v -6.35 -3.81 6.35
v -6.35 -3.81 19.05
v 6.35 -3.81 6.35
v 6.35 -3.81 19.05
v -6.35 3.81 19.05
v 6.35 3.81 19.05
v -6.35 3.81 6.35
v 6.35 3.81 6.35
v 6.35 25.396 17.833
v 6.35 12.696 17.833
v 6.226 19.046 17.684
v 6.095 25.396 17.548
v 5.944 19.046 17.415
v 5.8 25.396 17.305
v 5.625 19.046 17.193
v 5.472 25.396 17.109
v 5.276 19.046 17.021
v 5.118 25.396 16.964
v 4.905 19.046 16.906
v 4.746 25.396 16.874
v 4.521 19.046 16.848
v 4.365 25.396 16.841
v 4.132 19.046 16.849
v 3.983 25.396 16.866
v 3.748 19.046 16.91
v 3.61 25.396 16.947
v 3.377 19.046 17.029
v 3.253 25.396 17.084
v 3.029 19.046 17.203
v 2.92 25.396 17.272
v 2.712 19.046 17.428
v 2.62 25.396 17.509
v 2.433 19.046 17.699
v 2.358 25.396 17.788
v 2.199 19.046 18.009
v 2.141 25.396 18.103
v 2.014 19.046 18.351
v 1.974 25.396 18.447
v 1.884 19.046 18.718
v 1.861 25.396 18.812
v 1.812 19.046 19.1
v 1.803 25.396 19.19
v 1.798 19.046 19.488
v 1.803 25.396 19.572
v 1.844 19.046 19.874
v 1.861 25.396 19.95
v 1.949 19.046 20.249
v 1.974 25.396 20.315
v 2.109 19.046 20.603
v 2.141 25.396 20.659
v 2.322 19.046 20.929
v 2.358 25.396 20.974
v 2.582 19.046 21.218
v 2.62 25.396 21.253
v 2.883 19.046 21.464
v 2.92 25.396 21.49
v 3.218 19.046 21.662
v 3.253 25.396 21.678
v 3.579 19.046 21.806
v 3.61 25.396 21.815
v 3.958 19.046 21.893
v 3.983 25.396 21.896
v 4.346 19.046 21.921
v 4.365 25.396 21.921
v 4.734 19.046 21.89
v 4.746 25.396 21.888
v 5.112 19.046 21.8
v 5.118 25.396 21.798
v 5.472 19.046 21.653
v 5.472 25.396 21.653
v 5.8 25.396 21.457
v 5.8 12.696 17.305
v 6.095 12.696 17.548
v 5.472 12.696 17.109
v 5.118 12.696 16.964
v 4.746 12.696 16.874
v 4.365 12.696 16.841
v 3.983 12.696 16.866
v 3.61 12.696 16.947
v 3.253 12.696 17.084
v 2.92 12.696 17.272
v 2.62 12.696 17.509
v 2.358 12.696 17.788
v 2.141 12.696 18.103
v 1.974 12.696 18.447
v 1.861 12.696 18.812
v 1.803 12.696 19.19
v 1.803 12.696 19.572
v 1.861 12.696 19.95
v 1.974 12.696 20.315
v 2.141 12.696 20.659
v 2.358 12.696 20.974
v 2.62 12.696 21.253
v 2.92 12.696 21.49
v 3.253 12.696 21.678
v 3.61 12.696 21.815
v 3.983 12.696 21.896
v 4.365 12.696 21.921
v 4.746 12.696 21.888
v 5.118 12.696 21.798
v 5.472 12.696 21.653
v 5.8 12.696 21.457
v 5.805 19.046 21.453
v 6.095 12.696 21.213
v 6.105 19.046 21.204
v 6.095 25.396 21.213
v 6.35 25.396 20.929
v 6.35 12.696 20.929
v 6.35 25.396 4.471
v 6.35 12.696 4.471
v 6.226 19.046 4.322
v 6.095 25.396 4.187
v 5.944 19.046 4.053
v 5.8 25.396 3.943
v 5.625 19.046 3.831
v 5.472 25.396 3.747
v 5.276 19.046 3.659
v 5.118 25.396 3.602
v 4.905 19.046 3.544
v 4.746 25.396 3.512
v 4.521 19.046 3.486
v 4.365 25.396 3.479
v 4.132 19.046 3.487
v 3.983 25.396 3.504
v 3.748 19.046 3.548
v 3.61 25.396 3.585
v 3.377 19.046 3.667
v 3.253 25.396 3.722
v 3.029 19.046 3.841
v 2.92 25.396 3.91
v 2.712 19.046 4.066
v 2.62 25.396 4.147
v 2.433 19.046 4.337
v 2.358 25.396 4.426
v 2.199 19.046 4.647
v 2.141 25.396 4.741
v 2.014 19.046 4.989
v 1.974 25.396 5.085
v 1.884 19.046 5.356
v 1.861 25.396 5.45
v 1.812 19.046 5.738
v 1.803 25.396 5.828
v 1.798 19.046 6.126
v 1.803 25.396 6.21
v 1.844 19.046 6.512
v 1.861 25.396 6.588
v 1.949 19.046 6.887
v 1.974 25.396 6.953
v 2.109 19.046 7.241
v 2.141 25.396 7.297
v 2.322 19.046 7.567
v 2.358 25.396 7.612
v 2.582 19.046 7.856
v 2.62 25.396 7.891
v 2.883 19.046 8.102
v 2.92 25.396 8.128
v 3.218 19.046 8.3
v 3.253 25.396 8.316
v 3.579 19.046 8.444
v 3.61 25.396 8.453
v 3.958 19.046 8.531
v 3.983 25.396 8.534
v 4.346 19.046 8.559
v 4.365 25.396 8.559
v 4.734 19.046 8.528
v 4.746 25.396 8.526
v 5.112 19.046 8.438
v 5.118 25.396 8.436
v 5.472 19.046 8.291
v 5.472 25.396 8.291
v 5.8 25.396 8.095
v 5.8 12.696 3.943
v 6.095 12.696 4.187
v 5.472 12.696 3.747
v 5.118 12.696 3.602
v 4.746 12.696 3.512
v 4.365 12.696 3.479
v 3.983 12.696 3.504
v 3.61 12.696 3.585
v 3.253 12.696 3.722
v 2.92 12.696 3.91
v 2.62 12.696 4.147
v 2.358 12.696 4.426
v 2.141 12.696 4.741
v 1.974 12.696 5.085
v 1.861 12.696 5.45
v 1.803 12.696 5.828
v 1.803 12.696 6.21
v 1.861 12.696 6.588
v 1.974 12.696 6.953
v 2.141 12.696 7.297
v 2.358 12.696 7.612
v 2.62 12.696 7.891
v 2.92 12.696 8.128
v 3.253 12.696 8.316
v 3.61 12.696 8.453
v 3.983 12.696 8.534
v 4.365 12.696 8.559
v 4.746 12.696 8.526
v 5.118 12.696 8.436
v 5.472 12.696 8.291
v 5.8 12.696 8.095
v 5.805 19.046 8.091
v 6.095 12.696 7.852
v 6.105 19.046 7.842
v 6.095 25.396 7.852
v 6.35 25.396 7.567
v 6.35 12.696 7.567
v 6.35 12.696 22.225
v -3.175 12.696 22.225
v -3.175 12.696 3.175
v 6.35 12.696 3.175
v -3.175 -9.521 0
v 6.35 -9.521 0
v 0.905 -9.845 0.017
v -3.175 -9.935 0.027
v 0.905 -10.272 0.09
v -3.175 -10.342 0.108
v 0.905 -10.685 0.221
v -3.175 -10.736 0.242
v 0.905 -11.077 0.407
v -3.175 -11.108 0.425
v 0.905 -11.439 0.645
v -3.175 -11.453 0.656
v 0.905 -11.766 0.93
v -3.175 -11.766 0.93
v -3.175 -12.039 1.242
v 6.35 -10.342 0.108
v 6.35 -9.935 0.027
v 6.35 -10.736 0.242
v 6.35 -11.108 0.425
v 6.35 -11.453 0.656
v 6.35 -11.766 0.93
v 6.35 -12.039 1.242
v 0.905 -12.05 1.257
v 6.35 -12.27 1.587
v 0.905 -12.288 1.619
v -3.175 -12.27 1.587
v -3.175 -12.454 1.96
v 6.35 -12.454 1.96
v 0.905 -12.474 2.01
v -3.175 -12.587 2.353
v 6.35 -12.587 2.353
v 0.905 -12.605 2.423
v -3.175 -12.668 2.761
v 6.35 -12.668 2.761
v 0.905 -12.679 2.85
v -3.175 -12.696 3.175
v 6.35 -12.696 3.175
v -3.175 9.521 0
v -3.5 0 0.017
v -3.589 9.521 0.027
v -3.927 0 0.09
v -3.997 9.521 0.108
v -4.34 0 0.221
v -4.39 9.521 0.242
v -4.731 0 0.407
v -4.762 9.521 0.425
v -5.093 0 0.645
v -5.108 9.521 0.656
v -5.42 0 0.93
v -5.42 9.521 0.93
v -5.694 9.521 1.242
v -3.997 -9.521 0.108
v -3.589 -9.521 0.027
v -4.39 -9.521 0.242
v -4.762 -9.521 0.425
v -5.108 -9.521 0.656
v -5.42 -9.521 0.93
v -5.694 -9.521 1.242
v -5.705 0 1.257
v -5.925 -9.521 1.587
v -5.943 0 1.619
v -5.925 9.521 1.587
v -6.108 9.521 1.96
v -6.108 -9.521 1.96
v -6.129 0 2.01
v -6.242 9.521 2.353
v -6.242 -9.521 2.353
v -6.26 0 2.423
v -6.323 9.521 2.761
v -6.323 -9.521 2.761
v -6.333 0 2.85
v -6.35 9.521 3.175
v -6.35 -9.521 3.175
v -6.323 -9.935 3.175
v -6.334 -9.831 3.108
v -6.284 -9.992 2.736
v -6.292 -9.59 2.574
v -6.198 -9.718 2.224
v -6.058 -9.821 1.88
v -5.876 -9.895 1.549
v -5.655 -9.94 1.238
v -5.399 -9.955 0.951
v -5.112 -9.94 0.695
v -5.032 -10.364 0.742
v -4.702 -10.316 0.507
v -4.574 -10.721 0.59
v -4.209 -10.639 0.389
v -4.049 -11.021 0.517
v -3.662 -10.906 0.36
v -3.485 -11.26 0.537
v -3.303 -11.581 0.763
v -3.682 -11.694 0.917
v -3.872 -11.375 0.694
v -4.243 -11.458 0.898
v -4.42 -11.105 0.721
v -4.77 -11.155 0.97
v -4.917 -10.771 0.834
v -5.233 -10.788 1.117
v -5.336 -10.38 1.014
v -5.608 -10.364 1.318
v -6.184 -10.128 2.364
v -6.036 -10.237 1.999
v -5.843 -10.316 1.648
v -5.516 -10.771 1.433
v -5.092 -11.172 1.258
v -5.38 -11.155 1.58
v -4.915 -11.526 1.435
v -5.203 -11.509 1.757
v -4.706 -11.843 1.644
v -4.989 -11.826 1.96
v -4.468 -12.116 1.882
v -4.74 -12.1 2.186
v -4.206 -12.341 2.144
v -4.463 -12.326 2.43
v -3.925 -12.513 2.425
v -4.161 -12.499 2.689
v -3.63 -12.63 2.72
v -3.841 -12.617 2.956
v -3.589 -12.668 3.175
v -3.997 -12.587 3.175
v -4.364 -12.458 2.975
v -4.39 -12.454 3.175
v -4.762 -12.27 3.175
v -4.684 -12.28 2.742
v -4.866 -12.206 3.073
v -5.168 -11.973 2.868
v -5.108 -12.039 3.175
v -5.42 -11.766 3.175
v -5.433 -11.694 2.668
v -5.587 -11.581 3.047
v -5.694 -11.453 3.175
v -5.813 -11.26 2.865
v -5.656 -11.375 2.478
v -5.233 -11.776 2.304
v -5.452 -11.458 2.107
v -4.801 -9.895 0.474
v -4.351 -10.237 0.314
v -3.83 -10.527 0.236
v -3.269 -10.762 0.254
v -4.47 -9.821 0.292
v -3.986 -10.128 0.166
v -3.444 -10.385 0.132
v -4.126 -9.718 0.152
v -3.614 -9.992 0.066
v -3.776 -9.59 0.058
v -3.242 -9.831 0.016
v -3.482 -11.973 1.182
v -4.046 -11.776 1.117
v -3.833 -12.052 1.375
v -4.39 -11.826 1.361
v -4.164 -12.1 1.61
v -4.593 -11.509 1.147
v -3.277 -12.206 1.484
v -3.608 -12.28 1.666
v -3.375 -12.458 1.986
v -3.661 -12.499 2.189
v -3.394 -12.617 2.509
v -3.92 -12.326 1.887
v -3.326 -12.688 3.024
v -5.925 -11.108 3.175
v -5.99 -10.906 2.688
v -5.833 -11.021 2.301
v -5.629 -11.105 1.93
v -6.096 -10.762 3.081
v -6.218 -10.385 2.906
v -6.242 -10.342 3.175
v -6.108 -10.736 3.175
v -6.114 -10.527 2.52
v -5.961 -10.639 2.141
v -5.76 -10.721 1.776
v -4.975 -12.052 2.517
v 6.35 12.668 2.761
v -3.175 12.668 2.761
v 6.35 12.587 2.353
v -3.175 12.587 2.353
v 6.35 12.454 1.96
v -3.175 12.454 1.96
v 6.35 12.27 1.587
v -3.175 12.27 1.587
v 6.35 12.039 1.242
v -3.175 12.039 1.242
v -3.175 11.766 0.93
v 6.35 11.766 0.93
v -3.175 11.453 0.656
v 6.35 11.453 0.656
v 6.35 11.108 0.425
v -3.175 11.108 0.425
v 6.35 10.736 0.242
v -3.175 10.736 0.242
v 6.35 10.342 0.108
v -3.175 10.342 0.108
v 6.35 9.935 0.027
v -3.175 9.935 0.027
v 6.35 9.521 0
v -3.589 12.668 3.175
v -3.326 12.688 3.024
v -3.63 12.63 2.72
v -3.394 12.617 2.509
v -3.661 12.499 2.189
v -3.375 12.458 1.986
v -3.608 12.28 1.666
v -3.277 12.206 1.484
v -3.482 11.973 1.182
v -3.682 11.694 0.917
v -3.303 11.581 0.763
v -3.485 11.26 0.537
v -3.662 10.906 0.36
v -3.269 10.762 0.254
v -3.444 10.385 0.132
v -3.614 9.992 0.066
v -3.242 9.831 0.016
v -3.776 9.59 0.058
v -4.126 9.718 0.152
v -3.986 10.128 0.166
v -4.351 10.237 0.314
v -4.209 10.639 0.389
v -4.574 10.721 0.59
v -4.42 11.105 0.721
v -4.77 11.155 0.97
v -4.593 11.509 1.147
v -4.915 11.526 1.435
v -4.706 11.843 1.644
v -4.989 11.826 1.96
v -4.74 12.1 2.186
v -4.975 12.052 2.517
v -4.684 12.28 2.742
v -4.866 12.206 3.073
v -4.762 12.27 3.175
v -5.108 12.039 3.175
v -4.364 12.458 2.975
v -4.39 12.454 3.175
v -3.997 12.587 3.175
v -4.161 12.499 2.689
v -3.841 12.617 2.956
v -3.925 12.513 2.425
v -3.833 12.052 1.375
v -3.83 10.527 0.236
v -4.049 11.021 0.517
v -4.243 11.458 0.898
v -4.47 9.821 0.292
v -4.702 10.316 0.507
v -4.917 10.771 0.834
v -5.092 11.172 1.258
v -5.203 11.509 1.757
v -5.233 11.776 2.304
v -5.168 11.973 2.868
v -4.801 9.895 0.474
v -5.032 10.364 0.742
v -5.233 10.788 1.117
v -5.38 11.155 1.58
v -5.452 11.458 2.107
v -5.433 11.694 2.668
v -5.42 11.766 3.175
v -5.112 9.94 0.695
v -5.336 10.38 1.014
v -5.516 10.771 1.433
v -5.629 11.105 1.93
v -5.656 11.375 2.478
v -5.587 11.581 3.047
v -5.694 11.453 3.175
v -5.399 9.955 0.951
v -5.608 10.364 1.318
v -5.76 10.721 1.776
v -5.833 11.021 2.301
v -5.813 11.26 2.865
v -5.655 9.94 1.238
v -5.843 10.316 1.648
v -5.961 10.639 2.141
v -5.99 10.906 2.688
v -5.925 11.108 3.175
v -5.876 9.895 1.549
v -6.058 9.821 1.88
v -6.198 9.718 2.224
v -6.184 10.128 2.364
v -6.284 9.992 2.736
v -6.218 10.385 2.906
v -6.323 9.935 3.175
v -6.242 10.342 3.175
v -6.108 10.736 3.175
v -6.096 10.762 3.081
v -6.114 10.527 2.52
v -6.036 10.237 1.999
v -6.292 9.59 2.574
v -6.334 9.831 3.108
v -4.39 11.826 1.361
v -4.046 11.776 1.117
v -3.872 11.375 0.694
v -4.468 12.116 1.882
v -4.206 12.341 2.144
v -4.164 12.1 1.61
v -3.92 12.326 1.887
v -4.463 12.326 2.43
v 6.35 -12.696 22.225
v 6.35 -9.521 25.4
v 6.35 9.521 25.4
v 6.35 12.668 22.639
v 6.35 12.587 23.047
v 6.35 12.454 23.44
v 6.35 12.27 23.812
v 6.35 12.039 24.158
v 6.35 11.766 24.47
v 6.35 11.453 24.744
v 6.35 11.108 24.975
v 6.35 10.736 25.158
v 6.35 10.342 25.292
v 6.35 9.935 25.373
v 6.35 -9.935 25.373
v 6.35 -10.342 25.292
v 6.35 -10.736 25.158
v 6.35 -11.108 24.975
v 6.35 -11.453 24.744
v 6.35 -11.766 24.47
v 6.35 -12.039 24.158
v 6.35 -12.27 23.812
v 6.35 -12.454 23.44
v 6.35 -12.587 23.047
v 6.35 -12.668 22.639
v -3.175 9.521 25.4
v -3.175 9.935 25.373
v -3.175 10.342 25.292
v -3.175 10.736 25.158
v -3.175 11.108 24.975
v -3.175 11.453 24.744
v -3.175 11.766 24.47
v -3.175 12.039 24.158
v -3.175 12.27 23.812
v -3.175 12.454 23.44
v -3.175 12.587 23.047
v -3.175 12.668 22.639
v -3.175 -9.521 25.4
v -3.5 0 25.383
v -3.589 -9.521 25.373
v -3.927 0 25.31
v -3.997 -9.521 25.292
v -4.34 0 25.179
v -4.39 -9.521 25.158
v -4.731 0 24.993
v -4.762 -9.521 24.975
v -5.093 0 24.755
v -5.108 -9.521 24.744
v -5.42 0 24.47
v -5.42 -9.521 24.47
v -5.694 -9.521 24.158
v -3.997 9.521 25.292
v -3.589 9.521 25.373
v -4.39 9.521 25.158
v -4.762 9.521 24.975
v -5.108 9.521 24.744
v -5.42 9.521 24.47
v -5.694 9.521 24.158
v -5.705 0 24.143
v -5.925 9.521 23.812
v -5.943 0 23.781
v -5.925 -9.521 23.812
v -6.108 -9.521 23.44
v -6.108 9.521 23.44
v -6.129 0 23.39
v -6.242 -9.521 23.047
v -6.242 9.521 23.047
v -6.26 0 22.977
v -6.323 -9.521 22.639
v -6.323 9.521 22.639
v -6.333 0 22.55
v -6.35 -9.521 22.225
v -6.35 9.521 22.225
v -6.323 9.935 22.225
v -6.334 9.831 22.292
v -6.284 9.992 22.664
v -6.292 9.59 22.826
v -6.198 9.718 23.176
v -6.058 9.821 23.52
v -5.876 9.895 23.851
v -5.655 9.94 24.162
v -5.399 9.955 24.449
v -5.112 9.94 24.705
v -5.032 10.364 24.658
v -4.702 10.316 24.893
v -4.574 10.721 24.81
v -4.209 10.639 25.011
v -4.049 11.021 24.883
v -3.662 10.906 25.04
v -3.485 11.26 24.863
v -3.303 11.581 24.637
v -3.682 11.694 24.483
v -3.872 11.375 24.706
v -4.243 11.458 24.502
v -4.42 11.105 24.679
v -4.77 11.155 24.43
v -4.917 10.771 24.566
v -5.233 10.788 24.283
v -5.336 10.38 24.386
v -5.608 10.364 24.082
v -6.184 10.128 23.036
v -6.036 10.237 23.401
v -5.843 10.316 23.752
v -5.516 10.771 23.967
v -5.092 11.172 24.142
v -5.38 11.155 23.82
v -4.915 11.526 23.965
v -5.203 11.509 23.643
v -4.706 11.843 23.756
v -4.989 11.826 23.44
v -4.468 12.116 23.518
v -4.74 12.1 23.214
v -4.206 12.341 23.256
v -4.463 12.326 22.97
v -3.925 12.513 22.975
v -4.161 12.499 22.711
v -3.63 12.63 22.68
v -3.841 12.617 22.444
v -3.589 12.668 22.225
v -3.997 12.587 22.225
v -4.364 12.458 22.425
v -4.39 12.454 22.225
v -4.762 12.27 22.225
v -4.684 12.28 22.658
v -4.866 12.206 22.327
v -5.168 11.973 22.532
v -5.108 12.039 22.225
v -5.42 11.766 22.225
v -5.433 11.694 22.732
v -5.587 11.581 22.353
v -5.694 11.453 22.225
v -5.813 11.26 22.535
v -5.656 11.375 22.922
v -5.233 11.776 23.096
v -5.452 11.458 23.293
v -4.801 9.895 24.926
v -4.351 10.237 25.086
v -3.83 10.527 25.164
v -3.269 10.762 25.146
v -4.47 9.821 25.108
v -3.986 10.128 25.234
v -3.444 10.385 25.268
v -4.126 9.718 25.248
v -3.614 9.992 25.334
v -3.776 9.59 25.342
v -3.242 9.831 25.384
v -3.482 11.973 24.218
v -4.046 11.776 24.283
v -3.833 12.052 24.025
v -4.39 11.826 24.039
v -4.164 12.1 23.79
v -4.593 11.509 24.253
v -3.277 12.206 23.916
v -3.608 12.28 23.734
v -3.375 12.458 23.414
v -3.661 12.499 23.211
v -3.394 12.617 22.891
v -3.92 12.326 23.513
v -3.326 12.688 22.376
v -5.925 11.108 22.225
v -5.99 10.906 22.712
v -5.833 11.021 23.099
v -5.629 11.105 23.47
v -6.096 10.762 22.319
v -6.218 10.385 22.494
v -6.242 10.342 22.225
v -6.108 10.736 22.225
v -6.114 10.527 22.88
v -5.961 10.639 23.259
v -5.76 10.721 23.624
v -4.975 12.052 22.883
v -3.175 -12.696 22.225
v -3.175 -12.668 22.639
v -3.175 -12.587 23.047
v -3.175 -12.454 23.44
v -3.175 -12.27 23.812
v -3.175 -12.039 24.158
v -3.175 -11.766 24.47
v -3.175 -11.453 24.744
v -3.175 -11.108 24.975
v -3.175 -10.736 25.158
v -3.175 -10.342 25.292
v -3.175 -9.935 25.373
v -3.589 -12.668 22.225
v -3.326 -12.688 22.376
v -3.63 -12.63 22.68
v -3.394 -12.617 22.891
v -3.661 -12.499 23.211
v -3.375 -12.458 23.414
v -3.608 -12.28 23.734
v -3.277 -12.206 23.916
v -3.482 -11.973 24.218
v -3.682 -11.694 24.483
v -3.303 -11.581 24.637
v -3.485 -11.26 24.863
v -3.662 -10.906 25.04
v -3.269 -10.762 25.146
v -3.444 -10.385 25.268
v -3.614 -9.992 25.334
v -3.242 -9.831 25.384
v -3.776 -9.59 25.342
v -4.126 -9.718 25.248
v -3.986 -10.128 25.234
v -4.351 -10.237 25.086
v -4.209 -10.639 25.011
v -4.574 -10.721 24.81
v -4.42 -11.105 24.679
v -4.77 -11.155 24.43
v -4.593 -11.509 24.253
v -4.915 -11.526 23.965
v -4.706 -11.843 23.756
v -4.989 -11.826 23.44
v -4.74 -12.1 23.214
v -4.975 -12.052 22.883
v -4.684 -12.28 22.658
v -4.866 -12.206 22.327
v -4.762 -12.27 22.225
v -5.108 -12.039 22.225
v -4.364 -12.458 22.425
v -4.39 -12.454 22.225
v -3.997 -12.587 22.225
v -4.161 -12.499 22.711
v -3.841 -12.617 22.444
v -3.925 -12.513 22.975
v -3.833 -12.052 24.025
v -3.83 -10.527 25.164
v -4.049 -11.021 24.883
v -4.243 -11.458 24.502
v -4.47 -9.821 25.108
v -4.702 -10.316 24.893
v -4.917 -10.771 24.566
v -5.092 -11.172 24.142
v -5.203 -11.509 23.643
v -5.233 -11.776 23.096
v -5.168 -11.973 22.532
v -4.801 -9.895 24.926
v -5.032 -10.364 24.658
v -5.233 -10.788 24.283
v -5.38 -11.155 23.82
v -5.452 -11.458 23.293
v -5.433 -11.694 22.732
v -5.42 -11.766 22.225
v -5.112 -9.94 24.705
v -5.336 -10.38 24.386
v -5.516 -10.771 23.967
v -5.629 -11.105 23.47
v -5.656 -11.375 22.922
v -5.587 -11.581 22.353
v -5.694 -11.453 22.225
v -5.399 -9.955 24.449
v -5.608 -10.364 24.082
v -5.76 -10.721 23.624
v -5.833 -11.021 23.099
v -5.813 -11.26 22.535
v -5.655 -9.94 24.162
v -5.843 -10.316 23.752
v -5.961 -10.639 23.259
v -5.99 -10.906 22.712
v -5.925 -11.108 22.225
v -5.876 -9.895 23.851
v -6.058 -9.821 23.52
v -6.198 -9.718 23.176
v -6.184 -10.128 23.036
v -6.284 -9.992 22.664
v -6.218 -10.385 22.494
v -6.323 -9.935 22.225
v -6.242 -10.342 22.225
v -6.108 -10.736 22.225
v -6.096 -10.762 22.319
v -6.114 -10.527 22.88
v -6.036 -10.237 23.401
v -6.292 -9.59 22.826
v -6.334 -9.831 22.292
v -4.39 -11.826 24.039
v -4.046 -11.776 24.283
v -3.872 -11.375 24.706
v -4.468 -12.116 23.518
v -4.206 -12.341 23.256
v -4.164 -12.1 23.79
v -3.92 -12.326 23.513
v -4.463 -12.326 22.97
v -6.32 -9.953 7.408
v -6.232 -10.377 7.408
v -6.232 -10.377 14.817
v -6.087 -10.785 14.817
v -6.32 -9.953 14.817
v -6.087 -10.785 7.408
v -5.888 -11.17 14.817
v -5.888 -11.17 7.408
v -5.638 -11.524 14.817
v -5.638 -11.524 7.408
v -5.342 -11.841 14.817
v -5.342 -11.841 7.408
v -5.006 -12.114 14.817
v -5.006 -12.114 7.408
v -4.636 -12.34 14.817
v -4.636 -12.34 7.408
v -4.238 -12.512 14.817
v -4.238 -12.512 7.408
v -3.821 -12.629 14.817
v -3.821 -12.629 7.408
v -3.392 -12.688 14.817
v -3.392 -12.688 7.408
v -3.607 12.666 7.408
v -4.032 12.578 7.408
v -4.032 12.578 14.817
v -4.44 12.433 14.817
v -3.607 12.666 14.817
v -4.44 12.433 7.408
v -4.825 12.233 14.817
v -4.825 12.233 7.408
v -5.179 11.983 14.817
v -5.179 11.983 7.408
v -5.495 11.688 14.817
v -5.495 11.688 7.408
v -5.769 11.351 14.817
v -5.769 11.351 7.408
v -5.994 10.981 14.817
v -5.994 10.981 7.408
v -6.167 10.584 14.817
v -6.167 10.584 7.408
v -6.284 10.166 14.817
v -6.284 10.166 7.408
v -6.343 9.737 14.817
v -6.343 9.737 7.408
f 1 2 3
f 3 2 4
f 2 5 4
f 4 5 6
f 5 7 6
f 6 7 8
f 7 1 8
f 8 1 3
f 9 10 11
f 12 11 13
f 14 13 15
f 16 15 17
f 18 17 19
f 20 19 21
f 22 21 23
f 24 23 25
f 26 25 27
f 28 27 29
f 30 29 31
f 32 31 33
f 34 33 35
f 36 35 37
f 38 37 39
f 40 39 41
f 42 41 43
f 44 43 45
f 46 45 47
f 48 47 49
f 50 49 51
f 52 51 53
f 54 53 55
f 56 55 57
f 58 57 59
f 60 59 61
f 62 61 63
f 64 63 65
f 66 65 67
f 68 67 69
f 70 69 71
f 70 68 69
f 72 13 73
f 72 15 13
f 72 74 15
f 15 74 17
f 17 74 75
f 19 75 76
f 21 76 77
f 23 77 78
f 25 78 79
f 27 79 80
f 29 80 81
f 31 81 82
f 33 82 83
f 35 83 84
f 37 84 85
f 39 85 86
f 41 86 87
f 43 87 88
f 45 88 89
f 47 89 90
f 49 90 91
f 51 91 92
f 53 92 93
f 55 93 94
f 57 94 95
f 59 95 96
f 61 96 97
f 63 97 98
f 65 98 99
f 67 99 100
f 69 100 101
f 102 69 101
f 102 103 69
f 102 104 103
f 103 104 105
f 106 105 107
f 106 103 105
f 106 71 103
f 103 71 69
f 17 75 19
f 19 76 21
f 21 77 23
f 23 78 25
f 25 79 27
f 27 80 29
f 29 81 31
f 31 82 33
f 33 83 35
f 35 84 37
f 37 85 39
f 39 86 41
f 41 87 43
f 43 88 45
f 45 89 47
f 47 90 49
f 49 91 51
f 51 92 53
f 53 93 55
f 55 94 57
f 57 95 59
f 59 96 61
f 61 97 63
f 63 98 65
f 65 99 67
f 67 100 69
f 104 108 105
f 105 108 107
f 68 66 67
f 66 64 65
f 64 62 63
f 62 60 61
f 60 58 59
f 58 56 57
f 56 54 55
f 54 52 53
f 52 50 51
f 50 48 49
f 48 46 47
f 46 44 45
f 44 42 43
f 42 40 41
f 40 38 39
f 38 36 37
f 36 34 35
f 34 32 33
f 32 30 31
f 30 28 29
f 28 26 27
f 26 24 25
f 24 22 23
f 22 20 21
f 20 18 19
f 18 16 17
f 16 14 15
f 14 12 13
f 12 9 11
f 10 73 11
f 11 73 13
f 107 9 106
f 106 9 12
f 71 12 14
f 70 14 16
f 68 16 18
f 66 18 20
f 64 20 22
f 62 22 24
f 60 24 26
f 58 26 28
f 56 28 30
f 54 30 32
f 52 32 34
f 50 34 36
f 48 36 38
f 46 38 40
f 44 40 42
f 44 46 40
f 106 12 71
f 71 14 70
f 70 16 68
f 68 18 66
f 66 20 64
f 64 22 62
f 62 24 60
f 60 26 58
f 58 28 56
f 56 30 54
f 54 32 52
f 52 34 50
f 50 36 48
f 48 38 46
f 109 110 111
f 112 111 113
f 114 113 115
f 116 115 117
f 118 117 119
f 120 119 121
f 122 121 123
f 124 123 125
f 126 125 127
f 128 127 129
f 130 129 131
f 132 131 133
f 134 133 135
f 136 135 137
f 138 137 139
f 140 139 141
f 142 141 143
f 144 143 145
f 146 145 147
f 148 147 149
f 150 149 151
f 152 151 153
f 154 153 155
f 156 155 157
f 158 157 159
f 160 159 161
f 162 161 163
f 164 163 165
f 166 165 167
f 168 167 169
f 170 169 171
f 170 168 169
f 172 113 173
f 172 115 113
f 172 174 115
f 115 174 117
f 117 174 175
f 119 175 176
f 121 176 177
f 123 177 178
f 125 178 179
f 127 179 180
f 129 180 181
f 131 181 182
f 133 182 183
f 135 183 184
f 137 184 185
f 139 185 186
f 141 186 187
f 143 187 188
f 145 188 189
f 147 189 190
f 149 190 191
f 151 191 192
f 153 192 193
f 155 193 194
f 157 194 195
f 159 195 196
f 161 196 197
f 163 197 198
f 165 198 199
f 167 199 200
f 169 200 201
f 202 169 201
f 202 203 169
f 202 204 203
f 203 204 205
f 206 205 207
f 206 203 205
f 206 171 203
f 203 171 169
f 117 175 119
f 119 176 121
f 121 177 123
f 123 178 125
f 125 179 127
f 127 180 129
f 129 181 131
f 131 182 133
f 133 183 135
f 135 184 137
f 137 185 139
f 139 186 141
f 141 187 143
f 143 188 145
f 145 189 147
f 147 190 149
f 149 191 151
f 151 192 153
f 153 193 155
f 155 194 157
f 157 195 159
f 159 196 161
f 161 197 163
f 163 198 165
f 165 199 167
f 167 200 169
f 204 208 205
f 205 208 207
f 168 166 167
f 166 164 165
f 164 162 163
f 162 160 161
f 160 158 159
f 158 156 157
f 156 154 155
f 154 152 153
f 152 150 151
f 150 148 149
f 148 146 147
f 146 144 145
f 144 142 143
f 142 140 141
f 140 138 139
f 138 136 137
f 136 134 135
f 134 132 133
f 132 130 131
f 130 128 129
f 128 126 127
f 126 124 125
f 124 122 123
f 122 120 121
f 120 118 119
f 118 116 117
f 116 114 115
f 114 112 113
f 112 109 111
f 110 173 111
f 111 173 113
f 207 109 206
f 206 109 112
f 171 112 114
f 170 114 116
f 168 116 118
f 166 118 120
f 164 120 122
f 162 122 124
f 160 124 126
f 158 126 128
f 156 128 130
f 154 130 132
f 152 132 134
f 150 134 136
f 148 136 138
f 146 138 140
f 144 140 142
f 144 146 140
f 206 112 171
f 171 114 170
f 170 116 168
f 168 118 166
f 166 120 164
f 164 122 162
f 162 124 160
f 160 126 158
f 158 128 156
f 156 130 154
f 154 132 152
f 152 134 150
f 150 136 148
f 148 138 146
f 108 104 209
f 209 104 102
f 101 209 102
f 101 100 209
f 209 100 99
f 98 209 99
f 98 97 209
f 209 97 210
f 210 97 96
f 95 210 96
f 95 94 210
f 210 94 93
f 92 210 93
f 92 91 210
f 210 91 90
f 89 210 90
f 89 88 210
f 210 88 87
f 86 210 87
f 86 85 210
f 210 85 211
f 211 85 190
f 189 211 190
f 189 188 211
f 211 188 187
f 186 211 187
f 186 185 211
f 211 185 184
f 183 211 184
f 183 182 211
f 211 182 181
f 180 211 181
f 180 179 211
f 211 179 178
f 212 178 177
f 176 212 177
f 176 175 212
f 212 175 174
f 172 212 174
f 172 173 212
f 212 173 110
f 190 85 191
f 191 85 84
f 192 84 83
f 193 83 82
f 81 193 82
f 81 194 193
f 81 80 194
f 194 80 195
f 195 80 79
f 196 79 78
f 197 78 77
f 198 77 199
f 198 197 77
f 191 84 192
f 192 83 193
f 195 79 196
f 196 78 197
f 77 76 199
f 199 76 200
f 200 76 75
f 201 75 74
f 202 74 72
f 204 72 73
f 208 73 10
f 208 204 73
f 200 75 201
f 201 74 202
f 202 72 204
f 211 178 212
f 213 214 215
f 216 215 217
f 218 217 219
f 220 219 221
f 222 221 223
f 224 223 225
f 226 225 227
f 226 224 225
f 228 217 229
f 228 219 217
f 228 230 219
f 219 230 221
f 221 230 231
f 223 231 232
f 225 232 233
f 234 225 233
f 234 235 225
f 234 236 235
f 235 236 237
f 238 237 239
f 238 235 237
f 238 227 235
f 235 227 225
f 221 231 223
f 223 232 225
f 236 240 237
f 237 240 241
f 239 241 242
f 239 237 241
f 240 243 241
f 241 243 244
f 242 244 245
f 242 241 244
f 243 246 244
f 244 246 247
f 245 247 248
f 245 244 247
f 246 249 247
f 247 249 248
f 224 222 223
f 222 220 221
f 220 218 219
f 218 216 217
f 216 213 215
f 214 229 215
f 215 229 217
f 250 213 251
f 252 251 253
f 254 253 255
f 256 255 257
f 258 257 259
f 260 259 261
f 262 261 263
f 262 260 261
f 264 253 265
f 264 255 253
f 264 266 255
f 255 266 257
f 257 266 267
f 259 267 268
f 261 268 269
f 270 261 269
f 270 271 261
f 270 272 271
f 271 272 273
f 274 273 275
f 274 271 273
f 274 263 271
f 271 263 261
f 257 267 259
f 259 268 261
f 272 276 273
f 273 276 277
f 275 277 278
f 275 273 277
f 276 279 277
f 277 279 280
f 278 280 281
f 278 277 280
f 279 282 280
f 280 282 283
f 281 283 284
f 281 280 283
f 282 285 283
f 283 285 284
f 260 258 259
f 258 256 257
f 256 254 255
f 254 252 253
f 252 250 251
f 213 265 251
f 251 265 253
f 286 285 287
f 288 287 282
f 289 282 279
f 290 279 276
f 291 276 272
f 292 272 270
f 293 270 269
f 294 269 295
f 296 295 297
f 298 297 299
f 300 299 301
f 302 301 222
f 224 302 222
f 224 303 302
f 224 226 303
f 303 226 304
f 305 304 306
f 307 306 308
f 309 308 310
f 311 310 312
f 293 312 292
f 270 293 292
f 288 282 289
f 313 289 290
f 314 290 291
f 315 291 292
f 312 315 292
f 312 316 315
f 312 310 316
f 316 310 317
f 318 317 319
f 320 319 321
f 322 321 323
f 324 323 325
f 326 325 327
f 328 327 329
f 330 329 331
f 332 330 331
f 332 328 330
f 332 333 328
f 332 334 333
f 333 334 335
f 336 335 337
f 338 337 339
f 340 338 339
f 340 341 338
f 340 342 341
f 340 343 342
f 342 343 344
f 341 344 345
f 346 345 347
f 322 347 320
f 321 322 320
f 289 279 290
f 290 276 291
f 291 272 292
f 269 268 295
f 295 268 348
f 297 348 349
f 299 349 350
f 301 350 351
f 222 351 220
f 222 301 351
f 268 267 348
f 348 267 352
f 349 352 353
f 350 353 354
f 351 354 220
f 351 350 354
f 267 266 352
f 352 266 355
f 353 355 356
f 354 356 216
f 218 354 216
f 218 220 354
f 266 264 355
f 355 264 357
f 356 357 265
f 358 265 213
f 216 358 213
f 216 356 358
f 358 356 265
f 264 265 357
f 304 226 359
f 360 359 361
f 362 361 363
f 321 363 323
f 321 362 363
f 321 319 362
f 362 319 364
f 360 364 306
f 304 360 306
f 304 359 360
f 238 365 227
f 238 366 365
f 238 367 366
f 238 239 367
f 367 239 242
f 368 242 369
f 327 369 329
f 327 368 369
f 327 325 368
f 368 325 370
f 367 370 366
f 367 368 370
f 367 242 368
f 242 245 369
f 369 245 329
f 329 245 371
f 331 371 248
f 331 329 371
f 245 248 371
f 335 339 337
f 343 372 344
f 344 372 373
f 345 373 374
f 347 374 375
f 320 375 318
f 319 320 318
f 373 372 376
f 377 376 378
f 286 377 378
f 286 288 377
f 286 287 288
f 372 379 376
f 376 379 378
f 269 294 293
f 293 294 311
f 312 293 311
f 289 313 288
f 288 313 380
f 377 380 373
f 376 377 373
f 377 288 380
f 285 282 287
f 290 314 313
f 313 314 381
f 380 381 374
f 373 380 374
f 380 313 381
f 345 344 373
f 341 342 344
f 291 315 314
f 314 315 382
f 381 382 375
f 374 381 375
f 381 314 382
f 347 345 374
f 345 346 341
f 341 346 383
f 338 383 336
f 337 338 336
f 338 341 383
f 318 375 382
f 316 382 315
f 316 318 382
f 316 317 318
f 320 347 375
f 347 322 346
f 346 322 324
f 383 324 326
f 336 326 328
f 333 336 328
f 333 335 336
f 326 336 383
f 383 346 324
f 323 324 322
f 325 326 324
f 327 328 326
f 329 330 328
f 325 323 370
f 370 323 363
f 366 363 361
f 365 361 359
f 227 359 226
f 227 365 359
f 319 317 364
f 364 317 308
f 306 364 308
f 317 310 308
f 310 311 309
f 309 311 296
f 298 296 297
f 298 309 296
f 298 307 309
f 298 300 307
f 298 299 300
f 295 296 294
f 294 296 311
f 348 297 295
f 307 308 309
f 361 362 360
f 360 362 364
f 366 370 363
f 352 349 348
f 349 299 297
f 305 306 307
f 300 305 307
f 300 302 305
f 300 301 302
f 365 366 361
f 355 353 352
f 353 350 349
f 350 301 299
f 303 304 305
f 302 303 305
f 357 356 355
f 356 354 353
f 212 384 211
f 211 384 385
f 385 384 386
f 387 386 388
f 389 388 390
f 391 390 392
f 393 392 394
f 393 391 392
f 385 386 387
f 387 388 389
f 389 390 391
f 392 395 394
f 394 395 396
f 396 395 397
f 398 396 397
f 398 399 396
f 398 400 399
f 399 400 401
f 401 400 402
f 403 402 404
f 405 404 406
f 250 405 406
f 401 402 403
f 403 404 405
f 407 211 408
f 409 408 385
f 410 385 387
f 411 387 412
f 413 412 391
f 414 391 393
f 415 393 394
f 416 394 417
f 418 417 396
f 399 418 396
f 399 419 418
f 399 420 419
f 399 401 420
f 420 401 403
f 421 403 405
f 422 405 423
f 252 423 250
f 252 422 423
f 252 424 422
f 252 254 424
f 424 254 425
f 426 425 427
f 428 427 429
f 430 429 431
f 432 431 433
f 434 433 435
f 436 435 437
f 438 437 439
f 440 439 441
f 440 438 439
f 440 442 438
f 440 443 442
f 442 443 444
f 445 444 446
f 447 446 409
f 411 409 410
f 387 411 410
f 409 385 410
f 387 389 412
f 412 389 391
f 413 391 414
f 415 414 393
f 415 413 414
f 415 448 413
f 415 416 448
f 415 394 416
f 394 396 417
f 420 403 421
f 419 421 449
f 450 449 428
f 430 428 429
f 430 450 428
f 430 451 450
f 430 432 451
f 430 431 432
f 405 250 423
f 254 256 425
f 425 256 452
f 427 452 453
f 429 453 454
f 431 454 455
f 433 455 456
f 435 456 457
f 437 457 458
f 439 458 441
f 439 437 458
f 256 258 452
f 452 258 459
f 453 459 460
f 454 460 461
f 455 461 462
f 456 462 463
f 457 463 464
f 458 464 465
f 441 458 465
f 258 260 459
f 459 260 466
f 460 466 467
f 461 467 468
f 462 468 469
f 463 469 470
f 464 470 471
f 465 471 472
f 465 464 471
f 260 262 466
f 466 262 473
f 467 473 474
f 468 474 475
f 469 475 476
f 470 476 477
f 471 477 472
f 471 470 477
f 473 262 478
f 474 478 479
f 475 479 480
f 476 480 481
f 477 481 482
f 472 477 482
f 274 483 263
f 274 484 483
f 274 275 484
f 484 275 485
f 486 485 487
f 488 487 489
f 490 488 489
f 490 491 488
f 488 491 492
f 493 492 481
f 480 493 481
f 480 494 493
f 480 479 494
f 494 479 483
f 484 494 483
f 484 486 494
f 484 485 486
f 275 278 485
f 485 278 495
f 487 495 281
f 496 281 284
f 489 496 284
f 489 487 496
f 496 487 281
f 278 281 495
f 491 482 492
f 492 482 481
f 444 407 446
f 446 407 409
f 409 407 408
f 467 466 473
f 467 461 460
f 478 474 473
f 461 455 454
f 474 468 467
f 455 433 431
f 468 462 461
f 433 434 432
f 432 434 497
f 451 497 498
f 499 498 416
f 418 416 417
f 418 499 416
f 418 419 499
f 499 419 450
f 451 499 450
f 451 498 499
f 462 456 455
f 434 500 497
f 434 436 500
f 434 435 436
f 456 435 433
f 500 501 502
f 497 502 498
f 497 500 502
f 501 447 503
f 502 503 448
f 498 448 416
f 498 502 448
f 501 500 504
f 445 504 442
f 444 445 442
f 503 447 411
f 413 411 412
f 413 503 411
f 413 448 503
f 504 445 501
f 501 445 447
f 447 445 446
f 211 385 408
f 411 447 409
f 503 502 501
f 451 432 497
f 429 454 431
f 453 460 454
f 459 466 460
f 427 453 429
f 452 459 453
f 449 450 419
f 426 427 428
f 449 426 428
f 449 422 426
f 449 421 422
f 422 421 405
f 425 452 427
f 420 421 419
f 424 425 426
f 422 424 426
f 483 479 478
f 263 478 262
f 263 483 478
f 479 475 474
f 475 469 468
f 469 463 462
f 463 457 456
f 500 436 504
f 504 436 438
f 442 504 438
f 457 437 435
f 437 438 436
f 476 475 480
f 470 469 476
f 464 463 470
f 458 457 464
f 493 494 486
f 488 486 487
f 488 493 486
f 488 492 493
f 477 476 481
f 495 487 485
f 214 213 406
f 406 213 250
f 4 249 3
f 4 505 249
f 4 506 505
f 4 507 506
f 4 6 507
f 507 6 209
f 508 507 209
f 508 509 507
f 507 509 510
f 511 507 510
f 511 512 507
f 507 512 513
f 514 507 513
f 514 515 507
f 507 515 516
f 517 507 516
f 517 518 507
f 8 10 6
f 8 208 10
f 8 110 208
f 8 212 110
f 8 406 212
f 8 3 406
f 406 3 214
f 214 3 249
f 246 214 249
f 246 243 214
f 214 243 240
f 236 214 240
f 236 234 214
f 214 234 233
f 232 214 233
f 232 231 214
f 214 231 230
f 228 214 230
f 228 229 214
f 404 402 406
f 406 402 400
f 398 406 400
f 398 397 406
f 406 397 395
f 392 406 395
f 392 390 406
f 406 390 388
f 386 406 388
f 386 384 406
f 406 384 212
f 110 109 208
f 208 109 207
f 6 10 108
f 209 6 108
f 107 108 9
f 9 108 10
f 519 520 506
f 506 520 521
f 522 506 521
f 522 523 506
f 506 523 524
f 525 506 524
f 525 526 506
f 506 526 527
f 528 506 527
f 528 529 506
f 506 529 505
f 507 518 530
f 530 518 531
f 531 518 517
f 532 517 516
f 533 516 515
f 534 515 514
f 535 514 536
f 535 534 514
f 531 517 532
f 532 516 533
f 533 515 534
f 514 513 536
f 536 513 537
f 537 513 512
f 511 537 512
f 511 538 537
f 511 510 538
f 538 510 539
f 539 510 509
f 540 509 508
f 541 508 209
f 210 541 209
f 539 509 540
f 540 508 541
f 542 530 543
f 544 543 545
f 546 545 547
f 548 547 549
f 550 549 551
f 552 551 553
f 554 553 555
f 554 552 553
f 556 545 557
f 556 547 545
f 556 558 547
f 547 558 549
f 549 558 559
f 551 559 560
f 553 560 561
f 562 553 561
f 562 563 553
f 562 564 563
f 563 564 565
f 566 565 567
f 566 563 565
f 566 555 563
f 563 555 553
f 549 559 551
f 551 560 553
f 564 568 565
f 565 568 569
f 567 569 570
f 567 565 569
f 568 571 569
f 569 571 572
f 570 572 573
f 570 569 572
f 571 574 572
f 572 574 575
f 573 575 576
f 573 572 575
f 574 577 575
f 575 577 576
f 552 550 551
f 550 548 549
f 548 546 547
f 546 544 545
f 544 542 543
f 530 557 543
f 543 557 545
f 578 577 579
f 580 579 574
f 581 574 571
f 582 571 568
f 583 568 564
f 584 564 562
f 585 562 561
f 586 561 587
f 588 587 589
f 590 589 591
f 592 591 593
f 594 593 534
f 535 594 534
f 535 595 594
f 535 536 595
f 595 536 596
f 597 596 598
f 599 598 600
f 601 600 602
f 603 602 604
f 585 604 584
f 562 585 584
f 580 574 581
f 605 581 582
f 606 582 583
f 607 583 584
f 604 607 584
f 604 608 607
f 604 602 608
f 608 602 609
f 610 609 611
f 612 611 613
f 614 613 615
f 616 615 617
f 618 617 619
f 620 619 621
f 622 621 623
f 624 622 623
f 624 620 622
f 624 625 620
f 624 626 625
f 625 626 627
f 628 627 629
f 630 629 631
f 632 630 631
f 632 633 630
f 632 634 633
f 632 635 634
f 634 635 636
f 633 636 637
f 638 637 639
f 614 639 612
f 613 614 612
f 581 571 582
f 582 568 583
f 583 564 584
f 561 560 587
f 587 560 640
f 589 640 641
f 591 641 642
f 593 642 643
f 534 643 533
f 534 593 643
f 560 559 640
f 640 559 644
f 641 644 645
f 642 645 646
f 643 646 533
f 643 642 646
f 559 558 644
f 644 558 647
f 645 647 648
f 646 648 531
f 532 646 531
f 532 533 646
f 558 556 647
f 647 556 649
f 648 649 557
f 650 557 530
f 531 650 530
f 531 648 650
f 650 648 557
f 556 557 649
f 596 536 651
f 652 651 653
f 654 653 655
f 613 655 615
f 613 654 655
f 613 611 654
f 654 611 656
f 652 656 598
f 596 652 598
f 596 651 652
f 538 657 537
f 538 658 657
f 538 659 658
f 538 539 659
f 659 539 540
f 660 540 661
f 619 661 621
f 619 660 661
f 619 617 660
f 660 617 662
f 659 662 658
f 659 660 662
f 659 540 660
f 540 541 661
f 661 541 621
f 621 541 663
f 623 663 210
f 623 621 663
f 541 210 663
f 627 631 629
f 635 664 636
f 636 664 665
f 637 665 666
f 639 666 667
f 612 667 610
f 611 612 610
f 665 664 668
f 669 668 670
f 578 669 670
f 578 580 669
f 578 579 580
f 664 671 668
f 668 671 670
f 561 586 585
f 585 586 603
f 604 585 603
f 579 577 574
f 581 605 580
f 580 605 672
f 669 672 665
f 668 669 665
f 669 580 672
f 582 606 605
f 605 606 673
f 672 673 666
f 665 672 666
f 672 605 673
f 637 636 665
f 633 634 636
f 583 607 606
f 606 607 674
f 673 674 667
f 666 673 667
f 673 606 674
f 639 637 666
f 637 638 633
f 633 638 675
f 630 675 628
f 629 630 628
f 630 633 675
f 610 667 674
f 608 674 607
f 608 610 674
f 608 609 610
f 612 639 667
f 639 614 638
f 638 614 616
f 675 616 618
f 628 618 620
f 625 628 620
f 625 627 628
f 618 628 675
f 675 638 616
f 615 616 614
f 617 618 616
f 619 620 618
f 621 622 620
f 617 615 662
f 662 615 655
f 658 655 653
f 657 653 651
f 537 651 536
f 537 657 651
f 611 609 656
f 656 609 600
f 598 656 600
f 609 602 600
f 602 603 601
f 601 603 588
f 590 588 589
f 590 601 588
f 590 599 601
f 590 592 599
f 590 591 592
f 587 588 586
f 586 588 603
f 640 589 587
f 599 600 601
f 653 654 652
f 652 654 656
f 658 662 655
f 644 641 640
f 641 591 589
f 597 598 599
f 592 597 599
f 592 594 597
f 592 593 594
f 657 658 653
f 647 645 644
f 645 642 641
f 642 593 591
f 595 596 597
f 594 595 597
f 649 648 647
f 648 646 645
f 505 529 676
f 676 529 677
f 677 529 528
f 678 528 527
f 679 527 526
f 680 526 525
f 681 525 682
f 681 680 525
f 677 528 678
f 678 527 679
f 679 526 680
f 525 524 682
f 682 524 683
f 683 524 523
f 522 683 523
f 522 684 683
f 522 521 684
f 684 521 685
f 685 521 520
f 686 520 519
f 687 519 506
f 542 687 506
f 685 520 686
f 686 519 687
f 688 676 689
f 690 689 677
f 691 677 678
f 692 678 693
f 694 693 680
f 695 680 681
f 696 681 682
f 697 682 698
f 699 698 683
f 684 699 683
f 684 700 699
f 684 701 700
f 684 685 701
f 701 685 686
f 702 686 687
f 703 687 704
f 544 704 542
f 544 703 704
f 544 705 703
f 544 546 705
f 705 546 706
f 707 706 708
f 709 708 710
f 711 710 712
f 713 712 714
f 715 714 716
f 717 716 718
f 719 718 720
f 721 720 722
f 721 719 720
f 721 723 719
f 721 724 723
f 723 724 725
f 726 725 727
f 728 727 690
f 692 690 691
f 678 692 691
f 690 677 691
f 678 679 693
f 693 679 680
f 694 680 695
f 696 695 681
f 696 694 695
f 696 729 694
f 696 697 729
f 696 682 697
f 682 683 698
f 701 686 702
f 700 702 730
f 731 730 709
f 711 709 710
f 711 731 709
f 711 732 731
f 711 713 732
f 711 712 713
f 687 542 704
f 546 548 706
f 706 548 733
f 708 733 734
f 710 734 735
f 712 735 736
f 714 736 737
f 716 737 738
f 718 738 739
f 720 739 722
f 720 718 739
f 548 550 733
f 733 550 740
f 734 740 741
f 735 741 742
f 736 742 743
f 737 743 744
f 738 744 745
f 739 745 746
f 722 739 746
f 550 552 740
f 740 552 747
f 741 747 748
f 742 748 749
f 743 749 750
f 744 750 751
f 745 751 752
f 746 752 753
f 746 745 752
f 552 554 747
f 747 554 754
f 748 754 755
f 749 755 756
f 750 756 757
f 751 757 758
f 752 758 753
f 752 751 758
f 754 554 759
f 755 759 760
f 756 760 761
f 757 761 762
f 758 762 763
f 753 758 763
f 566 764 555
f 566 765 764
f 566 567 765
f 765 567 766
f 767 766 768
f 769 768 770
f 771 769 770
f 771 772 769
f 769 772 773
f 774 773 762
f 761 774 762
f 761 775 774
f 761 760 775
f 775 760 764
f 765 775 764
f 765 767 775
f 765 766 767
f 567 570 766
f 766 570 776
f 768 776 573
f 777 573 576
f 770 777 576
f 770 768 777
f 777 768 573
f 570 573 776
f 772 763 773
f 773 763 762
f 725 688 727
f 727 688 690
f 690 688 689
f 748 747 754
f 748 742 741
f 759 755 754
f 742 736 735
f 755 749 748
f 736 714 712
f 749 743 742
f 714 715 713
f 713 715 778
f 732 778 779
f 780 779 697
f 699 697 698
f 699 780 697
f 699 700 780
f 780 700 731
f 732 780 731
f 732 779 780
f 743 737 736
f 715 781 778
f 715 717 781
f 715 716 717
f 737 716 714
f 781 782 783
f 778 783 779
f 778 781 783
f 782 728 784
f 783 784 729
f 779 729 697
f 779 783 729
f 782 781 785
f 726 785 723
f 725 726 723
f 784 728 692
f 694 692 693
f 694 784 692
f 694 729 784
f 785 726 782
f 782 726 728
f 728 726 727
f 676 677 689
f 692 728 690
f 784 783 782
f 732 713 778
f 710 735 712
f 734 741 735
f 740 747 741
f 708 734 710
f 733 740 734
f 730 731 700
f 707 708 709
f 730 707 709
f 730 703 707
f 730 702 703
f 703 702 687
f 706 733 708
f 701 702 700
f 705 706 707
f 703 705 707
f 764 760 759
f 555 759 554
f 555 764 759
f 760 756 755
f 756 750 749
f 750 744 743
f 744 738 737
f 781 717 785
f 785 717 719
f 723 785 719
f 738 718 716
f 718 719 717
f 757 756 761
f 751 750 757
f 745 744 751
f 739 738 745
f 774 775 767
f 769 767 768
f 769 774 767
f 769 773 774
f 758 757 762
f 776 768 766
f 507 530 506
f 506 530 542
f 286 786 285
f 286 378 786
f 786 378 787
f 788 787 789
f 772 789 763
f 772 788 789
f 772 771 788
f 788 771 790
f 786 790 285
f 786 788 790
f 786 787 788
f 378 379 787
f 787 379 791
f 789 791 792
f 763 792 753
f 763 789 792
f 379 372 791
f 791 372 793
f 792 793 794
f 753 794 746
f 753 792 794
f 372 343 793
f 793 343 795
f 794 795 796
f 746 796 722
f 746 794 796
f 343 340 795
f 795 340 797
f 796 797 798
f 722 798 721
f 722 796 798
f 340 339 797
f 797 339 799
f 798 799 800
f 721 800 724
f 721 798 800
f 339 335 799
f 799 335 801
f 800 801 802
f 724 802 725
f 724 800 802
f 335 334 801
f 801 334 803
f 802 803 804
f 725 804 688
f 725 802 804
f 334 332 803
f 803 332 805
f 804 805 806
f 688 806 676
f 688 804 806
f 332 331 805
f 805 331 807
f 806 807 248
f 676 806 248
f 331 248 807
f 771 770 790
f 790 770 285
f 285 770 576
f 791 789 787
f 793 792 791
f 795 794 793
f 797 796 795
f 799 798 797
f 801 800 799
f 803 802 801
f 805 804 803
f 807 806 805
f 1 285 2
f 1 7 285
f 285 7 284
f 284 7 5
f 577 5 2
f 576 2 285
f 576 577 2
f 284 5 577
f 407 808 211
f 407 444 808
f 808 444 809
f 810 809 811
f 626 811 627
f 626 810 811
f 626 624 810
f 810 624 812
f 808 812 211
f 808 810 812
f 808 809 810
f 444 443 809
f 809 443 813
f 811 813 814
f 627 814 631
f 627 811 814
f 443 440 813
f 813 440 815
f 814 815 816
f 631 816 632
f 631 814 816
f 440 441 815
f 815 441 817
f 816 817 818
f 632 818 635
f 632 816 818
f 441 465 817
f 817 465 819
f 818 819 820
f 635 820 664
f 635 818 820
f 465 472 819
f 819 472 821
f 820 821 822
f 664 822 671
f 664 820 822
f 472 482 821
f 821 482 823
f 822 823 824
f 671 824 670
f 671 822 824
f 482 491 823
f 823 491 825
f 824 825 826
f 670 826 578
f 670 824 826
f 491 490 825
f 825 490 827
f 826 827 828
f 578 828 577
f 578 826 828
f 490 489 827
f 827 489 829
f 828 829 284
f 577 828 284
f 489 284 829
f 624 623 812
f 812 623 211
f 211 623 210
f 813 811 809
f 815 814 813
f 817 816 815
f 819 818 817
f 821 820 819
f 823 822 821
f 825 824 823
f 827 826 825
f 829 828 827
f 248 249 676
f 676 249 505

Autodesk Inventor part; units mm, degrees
ref_plane "YZ Plane" through (0, 0, 0) normal (1, 0, 0) x (0, 1, 0)
ref_plane "XZ Plane" through (0, 0, 0) normal (0, 1, 0) x (-1, 0, 0)
ref_plane "XY Plane" through (0, 0, 0) normal (0, 0, 1) x (1, 0, 0)
sketch "Sketch1" plane through (0, 0, 0) normal (0, 0, 1) x (1, 0, 0)
  line L0 (6.35, -12.6955) -> (-3.175, -12.6955)
  line L1 (-6.35, -9.5205) -> (-6.35, 9.5205)
  line L2 (-3.175, 12.6955) -> (6.35, 12.6955)
  line L3 (6.35, 12.6955) -> (6.35, -12.6955)
  line L4 (6.35, -12.6955) -> (-6.35, 12.6955) construction
  line L5 (-6.35, -12.6955) -> (6.35, 12.6955) construction
  arc A0 (-3.175, 12.6955) -> (-6.35, 9.5205) centre (-3.175, 9.5205) ccw
  arc A1 (-6.35, -9.5205) -> (-3.175, -12.6955) centre (-3.175, -9.5205) ccw
  point P0 (0, 0)
  dimension "d0" = 12.7
  dimension "d1" = 3.175
extrude "Extrusion1" add sketch "Sketch1" along normal blind 25.4
fillet "Fillet1" radius 3.175 10 edges at (-6.35, 0, 25.4) (-5.4201, -11.7656, 25.4) (1.5875, -12.6955, 25.4) (1.5875, 12.6955, 25.4) (-5.4201, 11.7656, 25.4) (-5.4201, 11.7656, 0) (1.5875, 12.6955, 0) (-5.4201, -11.7656, 0) (1.5875, -12.6955, 0) (-6.35, 0, 0)
sketch "Sketch2" plane through (-3.175, 12.6955, 3.175) normal (0, 1, 0) x (1, 0, 0)
  arc A0 (9.525, -14.6582) -> (9.525, -17.7537) centre (7.511, -16.206) ccw
  line L0 (0, 0) -> (0, -19.05) projected
  line L1 (9.525, 0) -> (9.525, -19.05) projected
  arc A1 (9.525, -1.2963) -> (9.525, -4.3918) centre (7.511, -2.844) ccw
  line L2 (9.525, -1.2963) -> (9.525, -4.3918)
  line L3 (9.525, -14.6582) -> (9.525, -17.7537)
  point P0 (3.175, 3.175)
  dimension "d5" = 5.08
extrude "Extrusion2" add sketch "Sketch2" along normal blind 12.7
sketch "Sketch3" plane through (-6.35, -9.5205, 3.175) normal (-1, 0, 0) x (0, 0, 1)
  line L0 (4.445, 6.9805) -> (9.525, 9.5205) construction
  line L1 (9.525, 9.5205) -> (4.445, 11.5525) construction
  line L2 (3.175, 6.9805) -> (9.525, 9.5205) construction
  line L3 (9.525, 9.5205) -> (5.2917, 12.0605) construction
  line L4 (5.2917, 6.9805) -> (13.7583, 12.0605) construction
  line L5 (3.175, 13.3305) -> (3.175, 5.7105)
  line L6 (15.875, 5.7105) -> (15.875, 13.3305)
  line L7 (14.9679, 13.3305) -> (3.175, 5.0755) construction
  line L8 (4.0821, 13.3305) -> (14.9679, 5.7105) construction
  line L9 (3.175, 5.0755) -> (3.175, 5.7105)
  line L10 (15.875, 5.7105) -> (15.875, 13.3305)
  line L11 (3.175, 13.3305) -> (3.175, 5.7105)
  line L12 (3.175, 13.3305) -> (15.875, 13.3305)
  line L13 (3.175, 5.7105) -> (15.875, 5.7105)
  point P0 (-3.175, 9.5205)
  point P1 (9.525, 9.5205)
extrude "Extrusion3" cut sketch "Sketch3" against normal blind 12.7
properties part number "pig_butt"
